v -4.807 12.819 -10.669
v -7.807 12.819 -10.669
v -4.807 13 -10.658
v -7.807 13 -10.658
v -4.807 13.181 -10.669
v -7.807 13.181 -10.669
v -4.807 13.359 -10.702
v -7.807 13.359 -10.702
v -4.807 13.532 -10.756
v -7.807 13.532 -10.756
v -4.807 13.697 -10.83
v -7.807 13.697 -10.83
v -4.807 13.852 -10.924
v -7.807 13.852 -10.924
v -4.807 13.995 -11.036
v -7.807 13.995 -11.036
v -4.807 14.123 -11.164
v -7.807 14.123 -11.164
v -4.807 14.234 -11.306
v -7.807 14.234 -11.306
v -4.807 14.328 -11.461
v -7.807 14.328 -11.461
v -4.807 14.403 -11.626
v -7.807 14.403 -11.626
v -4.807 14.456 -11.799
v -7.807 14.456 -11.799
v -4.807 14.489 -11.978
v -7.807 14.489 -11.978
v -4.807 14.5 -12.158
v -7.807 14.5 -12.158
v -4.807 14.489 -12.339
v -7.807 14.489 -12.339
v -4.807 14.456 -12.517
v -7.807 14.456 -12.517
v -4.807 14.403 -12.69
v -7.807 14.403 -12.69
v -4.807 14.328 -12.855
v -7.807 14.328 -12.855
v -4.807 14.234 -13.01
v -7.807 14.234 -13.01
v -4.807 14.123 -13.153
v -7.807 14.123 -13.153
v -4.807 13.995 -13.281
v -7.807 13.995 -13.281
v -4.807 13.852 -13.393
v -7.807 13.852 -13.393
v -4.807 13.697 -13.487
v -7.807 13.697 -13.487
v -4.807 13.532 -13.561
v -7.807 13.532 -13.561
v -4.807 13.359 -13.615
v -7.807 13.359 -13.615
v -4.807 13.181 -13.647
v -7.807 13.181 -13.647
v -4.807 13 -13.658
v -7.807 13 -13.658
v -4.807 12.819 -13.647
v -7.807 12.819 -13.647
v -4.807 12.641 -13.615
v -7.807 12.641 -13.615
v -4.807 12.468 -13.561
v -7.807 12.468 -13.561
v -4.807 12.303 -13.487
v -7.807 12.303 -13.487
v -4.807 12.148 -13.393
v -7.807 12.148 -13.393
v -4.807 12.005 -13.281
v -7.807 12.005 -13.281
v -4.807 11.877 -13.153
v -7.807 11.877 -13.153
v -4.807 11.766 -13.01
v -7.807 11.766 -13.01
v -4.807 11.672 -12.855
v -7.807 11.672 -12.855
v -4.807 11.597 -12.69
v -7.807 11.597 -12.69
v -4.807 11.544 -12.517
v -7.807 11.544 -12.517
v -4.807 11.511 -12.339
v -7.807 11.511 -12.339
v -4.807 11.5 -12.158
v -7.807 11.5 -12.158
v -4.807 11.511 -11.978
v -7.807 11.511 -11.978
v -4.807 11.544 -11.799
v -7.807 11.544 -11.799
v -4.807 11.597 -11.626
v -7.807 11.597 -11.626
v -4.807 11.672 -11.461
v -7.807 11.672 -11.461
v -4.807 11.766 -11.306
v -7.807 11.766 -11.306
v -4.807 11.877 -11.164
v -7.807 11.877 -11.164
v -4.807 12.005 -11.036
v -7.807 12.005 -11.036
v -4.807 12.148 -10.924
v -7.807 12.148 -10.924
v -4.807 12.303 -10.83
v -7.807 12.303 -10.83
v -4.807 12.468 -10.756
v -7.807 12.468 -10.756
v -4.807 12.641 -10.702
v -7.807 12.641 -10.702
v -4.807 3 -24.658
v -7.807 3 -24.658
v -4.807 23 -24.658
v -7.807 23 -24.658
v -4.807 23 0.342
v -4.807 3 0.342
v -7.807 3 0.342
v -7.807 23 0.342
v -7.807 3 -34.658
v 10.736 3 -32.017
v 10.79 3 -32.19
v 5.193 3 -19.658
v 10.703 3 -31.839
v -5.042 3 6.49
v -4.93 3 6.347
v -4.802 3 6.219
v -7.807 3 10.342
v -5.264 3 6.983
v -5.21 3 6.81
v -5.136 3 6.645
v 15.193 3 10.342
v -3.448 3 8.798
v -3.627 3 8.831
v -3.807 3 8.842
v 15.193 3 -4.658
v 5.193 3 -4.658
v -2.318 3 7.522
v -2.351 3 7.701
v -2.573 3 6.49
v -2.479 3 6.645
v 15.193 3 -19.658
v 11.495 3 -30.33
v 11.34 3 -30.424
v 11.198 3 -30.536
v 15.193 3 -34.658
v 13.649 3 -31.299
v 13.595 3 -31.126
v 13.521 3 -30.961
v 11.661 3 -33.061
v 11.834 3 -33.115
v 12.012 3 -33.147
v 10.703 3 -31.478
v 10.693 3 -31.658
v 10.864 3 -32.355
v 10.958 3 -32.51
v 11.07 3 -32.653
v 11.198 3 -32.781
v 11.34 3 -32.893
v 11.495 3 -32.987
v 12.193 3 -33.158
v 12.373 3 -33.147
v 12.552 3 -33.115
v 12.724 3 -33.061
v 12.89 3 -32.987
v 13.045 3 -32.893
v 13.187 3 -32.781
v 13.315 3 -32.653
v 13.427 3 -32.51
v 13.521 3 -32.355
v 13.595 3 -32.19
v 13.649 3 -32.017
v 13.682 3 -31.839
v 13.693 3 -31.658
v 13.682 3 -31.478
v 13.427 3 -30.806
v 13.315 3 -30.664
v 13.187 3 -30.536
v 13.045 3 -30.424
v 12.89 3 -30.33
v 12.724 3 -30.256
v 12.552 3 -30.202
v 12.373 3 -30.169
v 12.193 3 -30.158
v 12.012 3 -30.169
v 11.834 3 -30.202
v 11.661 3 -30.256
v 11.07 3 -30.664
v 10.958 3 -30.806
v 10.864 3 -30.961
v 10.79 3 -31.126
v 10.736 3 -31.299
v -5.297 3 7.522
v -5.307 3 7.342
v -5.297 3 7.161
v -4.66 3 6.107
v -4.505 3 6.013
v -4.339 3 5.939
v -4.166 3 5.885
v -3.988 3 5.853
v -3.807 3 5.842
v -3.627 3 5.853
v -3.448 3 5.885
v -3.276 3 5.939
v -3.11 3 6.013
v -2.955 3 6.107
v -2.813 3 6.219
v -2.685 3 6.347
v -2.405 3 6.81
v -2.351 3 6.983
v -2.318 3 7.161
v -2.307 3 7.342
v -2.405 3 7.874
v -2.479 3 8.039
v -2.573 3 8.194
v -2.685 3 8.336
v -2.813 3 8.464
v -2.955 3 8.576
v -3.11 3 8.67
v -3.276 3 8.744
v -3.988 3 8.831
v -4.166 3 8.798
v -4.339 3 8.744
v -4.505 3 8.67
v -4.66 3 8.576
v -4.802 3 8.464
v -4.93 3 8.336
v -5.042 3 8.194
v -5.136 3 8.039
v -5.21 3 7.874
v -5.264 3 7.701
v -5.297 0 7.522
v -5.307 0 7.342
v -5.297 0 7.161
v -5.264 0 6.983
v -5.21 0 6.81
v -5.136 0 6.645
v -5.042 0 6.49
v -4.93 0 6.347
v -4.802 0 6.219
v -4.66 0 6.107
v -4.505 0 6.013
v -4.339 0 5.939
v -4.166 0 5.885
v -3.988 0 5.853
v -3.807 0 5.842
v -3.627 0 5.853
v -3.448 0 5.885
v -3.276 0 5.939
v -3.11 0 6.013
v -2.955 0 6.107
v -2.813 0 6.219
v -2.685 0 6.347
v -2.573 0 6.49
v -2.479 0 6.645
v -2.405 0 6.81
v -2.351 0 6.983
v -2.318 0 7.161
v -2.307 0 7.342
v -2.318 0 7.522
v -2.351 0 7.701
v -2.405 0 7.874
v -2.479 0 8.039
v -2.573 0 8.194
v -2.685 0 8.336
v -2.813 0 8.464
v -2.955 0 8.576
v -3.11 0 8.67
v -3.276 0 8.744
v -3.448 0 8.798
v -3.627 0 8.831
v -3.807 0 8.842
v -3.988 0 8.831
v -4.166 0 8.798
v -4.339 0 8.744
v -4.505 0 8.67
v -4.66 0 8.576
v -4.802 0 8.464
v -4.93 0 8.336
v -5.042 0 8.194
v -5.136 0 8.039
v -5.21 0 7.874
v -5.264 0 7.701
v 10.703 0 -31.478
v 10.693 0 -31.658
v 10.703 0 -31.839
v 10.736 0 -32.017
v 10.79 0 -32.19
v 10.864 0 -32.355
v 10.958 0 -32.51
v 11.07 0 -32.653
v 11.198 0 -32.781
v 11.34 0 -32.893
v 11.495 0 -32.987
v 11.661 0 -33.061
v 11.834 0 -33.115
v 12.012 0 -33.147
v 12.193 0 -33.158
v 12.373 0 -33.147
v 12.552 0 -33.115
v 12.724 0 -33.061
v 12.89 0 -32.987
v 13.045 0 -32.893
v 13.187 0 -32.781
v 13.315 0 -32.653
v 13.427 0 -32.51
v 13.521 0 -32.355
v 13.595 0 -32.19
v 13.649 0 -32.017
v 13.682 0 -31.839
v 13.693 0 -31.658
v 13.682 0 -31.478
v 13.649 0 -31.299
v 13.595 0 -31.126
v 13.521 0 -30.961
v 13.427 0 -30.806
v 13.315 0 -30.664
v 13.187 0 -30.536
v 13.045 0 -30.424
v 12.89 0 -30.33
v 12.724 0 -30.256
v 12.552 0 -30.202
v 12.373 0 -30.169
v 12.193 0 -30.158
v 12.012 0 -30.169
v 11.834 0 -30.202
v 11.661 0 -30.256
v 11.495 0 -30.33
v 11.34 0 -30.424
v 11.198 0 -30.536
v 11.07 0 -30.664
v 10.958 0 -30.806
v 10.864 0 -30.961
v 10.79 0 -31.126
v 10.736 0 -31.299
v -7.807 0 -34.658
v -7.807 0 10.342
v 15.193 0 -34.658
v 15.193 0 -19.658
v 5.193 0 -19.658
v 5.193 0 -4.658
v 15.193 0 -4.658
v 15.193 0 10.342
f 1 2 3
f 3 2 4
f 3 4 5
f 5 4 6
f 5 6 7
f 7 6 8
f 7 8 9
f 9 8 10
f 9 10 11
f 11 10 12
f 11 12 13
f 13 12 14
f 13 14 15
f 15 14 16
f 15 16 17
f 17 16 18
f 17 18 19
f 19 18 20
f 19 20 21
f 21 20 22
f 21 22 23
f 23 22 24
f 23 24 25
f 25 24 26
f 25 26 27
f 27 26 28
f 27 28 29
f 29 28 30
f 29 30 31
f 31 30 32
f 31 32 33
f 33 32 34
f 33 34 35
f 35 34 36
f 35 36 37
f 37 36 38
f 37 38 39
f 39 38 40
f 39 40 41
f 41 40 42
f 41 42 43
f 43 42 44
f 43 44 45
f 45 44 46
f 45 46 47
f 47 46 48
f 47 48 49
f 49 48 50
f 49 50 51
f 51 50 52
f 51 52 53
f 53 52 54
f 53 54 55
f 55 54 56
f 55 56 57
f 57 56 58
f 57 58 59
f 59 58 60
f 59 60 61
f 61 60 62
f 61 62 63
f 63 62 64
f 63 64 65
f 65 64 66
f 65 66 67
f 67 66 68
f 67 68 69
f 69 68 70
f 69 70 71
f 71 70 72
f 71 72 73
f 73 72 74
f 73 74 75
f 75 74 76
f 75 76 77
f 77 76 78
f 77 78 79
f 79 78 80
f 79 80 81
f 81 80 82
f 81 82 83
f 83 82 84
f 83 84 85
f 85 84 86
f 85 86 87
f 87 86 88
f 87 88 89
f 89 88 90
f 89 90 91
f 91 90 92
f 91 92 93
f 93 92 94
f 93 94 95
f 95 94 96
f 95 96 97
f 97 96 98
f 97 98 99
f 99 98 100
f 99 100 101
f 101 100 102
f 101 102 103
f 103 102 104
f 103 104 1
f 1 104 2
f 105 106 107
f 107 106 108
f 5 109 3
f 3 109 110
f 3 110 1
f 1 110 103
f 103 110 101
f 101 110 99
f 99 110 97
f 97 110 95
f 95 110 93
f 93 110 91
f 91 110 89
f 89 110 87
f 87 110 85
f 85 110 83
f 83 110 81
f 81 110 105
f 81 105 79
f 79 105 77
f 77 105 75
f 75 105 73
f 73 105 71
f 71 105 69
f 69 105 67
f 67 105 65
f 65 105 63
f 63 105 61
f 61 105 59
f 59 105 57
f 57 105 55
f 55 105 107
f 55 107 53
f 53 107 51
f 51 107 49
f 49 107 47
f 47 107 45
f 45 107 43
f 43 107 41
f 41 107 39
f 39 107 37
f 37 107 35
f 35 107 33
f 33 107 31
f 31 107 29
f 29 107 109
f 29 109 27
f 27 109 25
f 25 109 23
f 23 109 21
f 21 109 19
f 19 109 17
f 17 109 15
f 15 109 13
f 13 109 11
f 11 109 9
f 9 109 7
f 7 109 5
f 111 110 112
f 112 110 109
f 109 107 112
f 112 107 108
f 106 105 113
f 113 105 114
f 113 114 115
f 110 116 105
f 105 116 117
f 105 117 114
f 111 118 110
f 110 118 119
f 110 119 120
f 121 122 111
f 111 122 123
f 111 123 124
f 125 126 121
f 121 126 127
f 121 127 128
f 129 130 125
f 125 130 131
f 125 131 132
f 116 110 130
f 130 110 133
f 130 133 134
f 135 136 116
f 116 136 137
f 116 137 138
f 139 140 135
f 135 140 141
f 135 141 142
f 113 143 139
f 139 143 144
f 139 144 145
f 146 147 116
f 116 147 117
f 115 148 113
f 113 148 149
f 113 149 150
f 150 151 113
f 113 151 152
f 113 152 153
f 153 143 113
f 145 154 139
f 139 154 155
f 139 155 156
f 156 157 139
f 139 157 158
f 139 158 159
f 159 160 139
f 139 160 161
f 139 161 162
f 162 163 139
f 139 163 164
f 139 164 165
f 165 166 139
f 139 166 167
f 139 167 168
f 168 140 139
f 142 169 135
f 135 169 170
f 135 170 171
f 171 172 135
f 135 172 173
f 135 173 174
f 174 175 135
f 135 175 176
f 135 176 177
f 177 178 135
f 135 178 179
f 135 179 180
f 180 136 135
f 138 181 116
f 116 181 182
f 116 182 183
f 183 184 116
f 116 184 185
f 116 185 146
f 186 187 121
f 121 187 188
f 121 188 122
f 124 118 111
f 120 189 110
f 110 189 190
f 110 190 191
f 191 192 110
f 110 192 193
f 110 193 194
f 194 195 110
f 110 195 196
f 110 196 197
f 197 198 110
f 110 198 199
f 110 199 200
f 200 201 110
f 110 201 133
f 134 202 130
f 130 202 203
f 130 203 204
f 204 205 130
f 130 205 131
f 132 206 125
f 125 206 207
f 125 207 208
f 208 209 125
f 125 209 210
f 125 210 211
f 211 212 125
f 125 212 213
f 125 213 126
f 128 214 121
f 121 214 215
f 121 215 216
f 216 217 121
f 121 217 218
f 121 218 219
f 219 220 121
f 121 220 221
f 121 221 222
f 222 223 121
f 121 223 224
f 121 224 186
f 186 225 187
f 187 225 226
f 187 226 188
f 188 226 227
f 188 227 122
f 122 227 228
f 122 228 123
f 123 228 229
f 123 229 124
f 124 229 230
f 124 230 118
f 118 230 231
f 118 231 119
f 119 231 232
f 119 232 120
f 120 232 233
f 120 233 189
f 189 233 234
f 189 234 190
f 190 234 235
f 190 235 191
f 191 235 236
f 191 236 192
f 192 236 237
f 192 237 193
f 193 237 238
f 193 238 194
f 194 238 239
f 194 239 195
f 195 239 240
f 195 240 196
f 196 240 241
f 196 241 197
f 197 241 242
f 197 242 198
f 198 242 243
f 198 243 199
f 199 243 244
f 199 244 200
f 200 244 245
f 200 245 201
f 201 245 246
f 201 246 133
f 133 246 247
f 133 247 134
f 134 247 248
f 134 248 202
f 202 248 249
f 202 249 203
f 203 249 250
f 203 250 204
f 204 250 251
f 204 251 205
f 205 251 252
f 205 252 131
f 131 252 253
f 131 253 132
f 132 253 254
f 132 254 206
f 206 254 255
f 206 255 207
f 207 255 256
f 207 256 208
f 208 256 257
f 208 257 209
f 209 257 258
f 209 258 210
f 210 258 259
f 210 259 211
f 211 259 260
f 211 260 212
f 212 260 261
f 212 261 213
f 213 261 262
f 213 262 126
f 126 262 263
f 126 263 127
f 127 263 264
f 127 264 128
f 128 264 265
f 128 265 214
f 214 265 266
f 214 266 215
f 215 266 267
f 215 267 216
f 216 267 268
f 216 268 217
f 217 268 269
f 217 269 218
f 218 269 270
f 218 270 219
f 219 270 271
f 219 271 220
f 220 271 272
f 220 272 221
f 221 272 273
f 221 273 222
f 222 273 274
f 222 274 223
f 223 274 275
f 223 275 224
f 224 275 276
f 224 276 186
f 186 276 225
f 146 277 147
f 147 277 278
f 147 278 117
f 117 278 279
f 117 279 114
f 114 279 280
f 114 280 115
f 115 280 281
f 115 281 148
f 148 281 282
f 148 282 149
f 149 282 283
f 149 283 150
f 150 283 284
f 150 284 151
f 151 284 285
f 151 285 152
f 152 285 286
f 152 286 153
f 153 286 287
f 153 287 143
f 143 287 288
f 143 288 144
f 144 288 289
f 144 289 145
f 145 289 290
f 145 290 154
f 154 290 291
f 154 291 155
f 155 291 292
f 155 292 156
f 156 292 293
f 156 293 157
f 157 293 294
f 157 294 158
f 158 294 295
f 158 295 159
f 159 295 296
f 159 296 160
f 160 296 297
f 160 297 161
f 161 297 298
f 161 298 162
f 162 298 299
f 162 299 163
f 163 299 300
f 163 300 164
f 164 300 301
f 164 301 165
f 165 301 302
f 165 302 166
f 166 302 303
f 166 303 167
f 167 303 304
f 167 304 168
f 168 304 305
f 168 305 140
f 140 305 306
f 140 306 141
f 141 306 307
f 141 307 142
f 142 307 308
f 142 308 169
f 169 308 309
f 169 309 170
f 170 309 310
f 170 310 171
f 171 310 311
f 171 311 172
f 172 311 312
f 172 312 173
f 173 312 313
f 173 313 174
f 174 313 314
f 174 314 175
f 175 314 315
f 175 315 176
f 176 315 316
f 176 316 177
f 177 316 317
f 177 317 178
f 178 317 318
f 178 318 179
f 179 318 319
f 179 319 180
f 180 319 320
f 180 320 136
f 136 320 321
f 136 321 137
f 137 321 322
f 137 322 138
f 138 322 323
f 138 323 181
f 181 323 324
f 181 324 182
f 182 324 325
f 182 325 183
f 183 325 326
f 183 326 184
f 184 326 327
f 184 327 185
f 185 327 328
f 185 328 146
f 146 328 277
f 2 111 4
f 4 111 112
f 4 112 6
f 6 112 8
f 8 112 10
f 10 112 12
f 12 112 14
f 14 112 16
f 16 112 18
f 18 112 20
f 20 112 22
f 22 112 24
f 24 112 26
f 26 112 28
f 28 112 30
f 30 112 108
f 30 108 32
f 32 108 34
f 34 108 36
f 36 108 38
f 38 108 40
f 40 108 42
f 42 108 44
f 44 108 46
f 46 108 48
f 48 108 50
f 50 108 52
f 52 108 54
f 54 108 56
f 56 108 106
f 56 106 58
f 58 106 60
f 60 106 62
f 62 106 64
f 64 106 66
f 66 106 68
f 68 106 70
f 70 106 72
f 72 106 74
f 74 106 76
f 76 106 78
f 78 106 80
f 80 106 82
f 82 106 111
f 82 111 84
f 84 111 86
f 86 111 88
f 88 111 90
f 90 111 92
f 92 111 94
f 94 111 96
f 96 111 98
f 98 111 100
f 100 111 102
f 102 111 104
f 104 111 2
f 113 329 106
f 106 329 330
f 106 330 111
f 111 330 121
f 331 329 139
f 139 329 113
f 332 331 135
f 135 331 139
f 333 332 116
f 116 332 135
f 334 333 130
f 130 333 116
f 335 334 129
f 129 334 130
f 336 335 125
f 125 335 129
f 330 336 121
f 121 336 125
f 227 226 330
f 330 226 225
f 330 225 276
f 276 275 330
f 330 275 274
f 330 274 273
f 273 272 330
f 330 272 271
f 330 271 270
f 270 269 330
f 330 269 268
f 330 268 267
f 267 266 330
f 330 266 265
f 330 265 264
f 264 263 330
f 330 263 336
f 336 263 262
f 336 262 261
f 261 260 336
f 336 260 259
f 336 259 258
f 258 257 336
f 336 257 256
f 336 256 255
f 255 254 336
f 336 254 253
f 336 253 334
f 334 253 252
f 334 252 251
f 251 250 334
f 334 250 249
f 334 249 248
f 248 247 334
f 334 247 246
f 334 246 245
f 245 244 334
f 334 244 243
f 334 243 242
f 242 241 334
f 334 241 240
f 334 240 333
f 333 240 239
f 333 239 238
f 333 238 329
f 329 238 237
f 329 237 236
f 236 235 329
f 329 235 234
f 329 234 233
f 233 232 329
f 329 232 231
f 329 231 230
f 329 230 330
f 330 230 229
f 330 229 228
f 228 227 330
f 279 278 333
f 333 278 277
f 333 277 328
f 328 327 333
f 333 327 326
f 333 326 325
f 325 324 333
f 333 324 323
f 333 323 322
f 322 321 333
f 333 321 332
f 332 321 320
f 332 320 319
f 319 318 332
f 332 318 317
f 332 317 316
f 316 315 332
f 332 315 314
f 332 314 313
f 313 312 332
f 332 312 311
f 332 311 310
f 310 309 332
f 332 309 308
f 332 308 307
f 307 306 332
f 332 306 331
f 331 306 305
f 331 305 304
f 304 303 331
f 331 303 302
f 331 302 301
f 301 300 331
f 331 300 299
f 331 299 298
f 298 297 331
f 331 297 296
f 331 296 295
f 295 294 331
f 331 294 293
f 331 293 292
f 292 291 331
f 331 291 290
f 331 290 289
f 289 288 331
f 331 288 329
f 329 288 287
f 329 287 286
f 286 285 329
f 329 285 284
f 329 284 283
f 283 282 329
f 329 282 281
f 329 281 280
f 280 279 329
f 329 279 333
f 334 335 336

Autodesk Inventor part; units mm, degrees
ref_plane "YZ Plane" through (0, 0, 0) normal (1, 0, 0) x (0, 1, 0)
ref_plane "XZ Plane" through (0, 0, 0) normal (0, 1, 0) x (-1, 0, 0)
ref_plane "XY Plane" through (0, 0, 0) normal (0, 0, 1) x (1, 0, 0)
sketch "Sketch1" plane through (0, 0, 0) normal (0, 1, 0) x (-1, 0, 0)
  line L0 (-15.1925, 10.3416) -> (7.8075, 10.3416)
  line L1 (7.8075, 10.3416) -> (7.8075, -34.6584)
  line L2 (7.8075, -34.6584) -> (-15.1925, -34.6584)
  line L3 (-15.1925, -34.6584) -> (-15.1925, -19.6584)
  line L4 (-15.1925, 10.3416) -> (-15.1925, -4.6584)
  line L5 (-15.1925, -4.6584) -> (-5.1925, -4.6584)
  line L6 (-5.1925, -4.6584) -> (-5.1925, -19.6584)
  line L7 (-5.1925, -19.6584) -> (-15.1925, -19.6584)
  circle A0 centre (-12.1925, -31.6584) radius 1.5
  circle A1 centre (3.8075, 7.3416) radius 1.5
  point P0 (0, 0)
  dimension "d0" = 23
  dimension "d1" = 45
  dimension "d2" = 15
  dimension "d3" = 15
  dimension "d4" = 10
  dimension "d5" = 3
  dimension "d6" = 3
  dimension "d7" = 3
  dimension "d8" = 3
  dimension "d10" = 3
  dimension "d23" = 23
  dimension "d24" = 19
extrude "Extrusion1" add sketch "Sketch1" along normal blind 3
sketch "Sketch2" plane through (0, 3, 0) normal (0, 1, 0) x (1, 0, 0)
  line L0 (-7.8075, 34.6584) -> (-7.8075, -10.3416) projected
  line L1 (-7.8075, -0.3416) -> (-4.8075, -0.3416)
  line L2 (-4.8075, -0.3416) -> (-4.8075, 24.6584)
  line L3 (-4.8075, 24.6584) -> (-7.8075, 24.6584)
  line L4 (-7.8075, 24.6584) -> (-7.8075, -0.3416)
  line L5 (15.1925, 34.6584) -> (-7.8075, 34.6584) projected
  line L6 (-7.8075, -10.3416) -> (15.1925, -10.3416) projected
  point P0 (0, 0)
  dimension "d13" = 10
  dimension "d14" = 10
  dimension "d15" = 3
extrude "Extrusion2" add sketch "Sketch2" along normal blind 20
sketch "Sketch3" plane through (-7.8075, 0, -34.6584) normal (-1, 0, 0) x (0, 0, 1)
  circle A0 centre (22.5, 13) radius 1.5
  line L0 (10, 23) -> (35, 23) projected
  line L1 (10, 3) -> (10, 23) projected
  point P0 (34.6584, 0)
  dimension "d18" = 10
  dimension "d19" = 12.5
  dimension "d20" = 3
extrude "Extrusion3" cut sketch "Sketch3" against normal up to surface (3 mm away)
properties part number "support-srf04"
